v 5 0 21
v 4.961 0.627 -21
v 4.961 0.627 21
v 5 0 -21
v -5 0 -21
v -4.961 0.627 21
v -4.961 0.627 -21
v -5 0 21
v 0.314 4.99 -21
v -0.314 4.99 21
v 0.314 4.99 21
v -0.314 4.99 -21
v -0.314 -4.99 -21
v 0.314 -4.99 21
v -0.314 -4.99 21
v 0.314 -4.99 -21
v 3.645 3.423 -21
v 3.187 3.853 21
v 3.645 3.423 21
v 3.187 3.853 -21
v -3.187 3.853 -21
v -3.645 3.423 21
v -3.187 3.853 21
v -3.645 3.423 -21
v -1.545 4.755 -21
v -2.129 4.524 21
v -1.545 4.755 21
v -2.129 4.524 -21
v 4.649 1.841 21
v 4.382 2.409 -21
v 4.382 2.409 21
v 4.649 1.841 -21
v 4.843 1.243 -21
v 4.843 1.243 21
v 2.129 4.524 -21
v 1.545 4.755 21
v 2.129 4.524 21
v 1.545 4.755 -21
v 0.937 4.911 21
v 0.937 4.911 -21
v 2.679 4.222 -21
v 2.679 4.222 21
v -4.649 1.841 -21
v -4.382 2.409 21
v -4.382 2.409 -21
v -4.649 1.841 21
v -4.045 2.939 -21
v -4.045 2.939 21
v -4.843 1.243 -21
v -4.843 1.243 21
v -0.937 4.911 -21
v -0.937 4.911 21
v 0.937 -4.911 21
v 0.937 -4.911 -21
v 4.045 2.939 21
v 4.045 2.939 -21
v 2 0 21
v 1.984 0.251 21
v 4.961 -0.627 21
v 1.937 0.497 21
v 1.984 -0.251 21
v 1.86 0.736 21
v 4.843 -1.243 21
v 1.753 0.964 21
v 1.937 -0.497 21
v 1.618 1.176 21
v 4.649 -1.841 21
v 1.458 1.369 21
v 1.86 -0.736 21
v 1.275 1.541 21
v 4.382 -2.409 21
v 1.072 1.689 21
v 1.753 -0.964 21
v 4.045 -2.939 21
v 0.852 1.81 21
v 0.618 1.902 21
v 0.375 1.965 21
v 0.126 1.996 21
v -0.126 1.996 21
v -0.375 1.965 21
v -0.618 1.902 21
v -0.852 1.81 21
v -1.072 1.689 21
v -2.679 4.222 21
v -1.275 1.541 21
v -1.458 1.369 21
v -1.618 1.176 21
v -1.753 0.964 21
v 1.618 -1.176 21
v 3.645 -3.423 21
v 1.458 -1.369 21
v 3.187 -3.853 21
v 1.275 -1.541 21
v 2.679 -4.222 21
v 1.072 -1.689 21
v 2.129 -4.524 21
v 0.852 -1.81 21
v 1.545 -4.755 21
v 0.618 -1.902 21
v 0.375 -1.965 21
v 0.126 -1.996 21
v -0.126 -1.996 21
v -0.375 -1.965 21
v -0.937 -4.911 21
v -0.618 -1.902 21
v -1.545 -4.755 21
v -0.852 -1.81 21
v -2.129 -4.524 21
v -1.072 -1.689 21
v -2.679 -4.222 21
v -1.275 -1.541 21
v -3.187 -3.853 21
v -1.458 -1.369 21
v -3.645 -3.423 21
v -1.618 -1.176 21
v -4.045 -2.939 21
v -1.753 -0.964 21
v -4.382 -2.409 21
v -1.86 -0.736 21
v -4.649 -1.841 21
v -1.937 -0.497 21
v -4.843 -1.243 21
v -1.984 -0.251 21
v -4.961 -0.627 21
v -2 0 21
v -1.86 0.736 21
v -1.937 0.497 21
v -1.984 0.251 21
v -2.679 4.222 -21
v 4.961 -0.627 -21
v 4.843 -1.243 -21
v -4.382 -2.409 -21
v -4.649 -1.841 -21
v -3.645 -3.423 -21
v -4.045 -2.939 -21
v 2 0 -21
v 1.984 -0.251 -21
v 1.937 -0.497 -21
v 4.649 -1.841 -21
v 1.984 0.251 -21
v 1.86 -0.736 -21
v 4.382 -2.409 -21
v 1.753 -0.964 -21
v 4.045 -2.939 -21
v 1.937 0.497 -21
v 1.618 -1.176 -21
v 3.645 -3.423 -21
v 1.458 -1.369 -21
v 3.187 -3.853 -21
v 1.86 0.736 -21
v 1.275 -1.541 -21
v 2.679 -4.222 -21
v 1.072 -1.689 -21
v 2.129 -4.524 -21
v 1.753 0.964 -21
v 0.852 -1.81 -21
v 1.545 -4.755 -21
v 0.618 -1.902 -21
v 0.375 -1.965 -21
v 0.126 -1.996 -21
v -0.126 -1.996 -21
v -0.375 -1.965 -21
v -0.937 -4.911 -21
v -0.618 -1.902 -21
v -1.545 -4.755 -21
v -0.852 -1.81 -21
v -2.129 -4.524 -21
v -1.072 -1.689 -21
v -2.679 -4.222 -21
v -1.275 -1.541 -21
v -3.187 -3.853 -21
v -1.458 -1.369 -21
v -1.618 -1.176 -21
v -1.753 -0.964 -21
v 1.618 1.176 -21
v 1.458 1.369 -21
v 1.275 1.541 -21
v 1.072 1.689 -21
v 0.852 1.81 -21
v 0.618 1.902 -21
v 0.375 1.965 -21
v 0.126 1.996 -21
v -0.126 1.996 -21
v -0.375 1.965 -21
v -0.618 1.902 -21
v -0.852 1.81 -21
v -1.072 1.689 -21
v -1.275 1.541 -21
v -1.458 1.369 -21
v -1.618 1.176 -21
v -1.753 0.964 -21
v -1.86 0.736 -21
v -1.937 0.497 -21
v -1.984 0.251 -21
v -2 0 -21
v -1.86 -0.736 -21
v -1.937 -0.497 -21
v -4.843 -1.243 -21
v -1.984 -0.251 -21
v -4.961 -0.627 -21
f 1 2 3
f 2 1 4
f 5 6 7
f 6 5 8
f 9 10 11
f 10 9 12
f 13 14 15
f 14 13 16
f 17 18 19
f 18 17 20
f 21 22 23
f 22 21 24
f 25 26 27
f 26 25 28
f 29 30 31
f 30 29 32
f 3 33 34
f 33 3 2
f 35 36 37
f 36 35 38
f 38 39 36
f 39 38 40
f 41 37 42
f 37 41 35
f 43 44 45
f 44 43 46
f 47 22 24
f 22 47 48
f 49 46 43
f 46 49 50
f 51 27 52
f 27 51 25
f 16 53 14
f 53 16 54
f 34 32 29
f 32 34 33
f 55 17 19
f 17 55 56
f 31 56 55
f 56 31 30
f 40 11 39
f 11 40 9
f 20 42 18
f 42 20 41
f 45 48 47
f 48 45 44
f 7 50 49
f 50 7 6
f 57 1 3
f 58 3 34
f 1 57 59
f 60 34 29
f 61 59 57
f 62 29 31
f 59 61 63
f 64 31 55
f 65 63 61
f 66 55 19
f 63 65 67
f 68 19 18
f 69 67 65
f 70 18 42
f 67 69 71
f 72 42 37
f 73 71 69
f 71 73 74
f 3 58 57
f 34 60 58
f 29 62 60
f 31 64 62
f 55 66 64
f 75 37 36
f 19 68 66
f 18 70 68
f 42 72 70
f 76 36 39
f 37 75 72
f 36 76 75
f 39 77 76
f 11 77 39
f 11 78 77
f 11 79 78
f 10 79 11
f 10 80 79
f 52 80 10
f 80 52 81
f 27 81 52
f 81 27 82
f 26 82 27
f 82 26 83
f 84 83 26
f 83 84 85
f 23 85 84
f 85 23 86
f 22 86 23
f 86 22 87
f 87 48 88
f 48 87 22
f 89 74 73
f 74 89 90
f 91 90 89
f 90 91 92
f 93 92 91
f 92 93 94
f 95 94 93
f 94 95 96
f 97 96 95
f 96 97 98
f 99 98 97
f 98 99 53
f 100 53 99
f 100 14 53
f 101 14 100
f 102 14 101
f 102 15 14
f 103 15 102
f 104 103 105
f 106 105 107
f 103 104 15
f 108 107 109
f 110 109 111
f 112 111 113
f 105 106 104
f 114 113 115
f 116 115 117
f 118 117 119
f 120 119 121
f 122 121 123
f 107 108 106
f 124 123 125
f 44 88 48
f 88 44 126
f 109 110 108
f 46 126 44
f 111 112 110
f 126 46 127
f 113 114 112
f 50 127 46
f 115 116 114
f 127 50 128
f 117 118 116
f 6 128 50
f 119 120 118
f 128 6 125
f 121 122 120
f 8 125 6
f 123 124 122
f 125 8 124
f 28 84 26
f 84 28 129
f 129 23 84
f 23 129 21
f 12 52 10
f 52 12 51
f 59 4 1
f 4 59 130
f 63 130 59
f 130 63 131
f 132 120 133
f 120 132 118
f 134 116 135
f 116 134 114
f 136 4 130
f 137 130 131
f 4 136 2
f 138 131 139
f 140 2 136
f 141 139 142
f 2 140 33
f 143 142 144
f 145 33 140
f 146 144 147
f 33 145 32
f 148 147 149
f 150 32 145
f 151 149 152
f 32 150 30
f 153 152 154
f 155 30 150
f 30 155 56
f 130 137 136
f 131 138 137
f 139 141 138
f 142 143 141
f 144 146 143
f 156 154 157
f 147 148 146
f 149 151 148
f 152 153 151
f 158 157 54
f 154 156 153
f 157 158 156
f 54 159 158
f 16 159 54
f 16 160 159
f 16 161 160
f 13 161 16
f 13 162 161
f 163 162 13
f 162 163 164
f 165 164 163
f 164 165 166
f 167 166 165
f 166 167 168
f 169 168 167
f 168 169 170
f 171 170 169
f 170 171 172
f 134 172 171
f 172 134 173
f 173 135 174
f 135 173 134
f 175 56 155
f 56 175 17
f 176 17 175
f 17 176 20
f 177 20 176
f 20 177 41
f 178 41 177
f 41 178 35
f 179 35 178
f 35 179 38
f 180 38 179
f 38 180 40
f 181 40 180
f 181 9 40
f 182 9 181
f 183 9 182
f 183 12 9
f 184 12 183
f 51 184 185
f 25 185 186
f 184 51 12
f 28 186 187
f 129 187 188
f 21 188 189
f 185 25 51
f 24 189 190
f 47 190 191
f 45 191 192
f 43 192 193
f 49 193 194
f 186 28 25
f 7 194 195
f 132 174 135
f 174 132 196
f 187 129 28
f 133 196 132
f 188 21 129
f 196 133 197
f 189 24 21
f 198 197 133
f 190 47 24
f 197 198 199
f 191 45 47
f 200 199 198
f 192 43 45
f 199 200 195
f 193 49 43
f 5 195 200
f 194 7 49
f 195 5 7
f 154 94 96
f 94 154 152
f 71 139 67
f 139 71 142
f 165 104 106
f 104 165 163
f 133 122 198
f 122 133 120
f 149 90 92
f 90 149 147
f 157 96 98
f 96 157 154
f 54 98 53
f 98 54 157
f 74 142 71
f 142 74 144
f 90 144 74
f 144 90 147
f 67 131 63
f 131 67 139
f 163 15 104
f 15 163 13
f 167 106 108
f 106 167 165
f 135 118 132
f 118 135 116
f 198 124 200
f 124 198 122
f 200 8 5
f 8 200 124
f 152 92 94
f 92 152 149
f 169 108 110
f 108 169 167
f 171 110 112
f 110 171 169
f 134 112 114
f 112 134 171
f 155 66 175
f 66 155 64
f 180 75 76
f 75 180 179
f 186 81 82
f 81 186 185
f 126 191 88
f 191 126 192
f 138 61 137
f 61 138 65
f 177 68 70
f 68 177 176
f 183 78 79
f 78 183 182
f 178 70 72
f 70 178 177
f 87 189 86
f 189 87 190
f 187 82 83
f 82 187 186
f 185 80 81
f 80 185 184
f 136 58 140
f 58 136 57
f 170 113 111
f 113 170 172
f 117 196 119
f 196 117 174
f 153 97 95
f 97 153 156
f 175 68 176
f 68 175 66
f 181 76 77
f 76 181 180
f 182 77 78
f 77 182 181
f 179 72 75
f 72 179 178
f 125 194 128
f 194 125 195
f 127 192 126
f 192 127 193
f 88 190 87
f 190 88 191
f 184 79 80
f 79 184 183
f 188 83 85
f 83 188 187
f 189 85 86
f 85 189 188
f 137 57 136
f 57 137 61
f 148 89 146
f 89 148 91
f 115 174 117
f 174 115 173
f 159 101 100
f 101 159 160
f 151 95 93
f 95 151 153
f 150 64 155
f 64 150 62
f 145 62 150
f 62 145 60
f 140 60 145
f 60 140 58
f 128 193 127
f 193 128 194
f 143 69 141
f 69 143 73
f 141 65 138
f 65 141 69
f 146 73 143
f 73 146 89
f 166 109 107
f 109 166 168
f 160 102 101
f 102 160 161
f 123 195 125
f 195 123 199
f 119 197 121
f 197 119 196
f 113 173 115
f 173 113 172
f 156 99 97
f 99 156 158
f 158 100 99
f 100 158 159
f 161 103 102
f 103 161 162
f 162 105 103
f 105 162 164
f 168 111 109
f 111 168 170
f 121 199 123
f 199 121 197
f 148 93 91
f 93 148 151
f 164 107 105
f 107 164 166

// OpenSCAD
$fn = 50;


difference() {
	union() {
		translate(v = [0, 0, -21.0000000000]) {
			cylinder(h = 42, r = 5.0000000000);
		}
	}
	union() {
		translate(v = [0, 0, -100.0000000000]) {
			cylinder(h = 200, r = 2);
		}
	}
}
